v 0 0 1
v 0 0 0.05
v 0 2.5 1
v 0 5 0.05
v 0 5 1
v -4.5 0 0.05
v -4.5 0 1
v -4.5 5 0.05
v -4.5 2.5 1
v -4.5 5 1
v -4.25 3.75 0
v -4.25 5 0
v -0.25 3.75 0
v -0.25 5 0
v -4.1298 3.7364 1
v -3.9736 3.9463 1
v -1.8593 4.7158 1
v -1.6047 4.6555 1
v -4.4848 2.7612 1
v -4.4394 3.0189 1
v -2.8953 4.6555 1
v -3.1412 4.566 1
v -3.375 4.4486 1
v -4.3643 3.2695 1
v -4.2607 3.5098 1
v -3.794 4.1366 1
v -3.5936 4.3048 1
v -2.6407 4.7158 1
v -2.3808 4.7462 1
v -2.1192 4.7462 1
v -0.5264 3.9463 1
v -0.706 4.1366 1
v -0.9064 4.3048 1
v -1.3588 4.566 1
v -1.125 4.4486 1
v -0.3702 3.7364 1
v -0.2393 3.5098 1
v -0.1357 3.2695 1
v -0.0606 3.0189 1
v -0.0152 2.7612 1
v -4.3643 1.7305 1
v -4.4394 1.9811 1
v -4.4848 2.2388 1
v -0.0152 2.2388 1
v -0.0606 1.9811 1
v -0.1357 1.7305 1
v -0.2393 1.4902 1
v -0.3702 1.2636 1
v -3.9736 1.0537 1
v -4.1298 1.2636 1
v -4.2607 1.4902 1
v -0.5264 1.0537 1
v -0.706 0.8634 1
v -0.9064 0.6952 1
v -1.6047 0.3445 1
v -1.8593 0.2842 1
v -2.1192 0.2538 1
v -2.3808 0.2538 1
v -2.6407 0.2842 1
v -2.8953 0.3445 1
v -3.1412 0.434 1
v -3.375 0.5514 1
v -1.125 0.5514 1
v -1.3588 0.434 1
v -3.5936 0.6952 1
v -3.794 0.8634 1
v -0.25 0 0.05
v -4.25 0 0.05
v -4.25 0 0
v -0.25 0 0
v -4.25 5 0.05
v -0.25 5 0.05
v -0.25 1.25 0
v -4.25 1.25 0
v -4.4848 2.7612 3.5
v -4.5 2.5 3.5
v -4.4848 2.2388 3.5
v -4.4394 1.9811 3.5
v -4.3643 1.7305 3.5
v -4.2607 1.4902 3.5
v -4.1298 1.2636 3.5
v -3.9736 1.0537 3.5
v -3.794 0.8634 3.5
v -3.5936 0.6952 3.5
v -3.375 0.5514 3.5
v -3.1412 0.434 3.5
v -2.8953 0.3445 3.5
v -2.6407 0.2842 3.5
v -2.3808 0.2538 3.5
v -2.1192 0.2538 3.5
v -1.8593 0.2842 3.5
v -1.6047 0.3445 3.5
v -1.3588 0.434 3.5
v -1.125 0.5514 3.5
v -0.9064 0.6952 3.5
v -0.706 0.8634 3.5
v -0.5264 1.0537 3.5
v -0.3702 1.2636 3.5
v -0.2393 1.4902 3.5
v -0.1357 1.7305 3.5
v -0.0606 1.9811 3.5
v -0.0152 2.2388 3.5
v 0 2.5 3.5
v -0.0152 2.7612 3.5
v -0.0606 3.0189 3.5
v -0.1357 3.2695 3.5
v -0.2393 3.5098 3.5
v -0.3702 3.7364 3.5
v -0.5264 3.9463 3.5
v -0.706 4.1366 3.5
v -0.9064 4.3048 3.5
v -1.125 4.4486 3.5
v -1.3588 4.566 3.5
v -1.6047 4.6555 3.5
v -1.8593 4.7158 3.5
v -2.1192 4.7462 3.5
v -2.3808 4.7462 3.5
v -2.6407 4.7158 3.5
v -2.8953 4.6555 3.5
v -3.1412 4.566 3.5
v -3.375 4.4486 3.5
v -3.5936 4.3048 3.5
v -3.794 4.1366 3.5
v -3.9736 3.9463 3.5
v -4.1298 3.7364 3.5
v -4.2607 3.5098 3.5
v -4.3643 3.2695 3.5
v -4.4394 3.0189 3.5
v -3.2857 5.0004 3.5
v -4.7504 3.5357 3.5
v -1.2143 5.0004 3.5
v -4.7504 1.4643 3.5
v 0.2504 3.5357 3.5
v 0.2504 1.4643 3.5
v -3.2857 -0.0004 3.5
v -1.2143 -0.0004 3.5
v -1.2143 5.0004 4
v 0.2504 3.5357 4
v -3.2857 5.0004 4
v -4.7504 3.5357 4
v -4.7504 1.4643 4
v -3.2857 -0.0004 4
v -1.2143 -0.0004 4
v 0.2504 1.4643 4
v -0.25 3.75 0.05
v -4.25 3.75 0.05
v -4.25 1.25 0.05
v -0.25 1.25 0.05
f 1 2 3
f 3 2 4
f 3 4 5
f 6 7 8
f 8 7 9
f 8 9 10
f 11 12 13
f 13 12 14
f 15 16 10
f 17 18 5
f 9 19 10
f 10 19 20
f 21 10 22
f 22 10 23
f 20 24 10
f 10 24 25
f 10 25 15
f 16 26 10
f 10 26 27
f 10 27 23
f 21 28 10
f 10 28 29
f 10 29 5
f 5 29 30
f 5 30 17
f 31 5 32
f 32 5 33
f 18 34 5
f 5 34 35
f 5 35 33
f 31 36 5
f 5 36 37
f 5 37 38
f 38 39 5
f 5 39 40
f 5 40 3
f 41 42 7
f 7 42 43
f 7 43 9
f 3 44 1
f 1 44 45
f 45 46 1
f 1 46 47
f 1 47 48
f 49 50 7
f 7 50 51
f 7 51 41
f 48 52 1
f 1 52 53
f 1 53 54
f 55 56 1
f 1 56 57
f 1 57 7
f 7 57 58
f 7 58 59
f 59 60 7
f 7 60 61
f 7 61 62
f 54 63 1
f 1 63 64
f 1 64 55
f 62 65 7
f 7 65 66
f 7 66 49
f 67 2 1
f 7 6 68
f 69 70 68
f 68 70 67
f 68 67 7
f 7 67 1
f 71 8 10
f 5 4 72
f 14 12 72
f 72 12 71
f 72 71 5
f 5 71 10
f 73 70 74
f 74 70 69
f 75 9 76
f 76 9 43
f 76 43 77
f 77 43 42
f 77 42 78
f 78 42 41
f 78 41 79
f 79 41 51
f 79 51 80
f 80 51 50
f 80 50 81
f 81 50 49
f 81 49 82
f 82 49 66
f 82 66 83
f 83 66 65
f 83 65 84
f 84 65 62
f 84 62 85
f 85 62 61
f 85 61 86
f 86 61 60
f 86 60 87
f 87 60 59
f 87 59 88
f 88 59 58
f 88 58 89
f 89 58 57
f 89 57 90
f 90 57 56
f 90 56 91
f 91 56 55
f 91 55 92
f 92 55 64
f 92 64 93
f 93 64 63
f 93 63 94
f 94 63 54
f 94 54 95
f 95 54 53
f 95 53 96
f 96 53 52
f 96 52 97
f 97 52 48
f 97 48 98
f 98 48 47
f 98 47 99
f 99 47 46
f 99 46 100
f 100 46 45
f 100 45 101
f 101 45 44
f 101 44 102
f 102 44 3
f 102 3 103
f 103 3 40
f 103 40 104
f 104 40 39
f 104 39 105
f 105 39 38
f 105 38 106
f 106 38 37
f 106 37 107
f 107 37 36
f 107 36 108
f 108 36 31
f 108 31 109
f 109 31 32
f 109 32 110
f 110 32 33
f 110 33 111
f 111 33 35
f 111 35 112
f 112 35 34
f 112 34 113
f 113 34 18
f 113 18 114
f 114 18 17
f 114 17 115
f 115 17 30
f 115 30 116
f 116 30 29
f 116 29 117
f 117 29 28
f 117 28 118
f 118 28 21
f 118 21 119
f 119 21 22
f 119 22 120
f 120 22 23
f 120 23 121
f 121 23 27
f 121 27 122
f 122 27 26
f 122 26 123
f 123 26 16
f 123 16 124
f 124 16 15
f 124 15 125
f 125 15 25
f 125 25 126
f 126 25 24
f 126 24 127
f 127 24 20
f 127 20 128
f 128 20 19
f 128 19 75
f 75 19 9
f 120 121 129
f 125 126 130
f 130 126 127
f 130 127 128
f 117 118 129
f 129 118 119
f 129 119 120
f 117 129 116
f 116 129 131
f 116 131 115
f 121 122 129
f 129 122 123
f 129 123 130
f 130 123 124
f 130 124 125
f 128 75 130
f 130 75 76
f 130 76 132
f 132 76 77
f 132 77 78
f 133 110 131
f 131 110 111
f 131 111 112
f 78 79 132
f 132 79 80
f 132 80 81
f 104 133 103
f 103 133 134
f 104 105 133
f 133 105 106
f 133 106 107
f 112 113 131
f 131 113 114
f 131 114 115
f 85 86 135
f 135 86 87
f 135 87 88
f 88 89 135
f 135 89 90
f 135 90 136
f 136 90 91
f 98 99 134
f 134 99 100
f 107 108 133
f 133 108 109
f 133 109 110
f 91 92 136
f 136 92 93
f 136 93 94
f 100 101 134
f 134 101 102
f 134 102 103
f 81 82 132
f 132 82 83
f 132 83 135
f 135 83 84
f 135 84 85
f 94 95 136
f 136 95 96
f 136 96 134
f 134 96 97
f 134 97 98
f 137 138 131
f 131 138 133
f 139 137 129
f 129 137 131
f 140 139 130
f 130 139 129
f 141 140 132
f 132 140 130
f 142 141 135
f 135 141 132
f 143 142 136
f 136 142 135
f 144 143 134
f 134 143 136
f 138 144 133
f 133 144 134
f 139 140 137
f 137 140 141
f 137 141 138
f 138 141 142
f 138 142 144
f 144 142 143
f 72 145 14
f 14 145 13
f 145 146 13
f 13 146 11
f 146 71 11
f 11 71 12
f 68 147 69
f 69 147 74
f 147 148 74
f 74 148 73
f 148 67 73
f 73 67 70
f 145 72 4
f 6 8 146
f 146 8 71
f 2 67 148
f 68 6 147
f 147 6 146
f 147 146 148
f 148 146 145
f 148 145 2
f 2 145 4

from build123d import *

# Parameters (mm, degrees)
SKETCH1_W           = 4.5
SKETCH1_H           = 5
BOSS_EXTRUDE1_DEPTH = 1
SKETCH2_R           = 2.25
BOSS_EXTRUDE2_DEPTH = 2.5
BOSS_EXTRUDE3_DEPTH = 0.5
CUT_EXTRUDE1_DEPTH  = 0.05


with BuildPart() as part:
    # Sketch1 → Boss-Extrude1 (new body)
    with BuildSketch(Plane.XY):
        with Locations((-2.25, 2.5)):
            Rectangle(SKETCH1_W, SKETCH1_H)
    extrude(amount=BOSS_EXTRUDE1_DEPTH)

    # Sketch2 → Boss-Extrude2 (add)
    with BuildSketch(Plane.XY.offset(1)):
        with Locations((-2.25, 2.5)):
            Circle(SKETCH2_R)
    extrude(amount=BOSS_EXTRUDE2_DEPTH)

    # Sketch3 → Boss-Extrude3 (add)
    with BuildSketch(Plane.XY.offset(3.5)):
        Polygon((-1.214319799, 5.000353186), (-3.285680201, 5.000353186), (-4.750353186, 3.535680201), (-4.750353186, 1.464319799), (-3.285680201, -0.000353186), (-1.214319799, -0.000353186), (0.250353186, 1.464319799), (0.250353186, 3.535680201), align=None)
    extrude(amount=BOSS_EXTRUDE3_DEPTH)

    # Sketch5 → Cut-Extrude1 (cut)
    with BuildSketch(Plane(origin=(0, 0, 0), x_dir=(-1, 0, 0), z_dir=(0, 0, -1))):
        Polygon((0.25, 5), (0, 5), (0, 0), (0.25, 0), (0.25, 1.25), (4.25, 1.25), (4.25, 0), (4.5, 0), (4.5, 5), (4.25, 5), (4.25, 3.75), (0.25, 3.75), align=None)
    extrude(amount=-CUT_EXTRUDE1_DEPTH, mode=Mode.SUBTRACT)


solid = part.part
